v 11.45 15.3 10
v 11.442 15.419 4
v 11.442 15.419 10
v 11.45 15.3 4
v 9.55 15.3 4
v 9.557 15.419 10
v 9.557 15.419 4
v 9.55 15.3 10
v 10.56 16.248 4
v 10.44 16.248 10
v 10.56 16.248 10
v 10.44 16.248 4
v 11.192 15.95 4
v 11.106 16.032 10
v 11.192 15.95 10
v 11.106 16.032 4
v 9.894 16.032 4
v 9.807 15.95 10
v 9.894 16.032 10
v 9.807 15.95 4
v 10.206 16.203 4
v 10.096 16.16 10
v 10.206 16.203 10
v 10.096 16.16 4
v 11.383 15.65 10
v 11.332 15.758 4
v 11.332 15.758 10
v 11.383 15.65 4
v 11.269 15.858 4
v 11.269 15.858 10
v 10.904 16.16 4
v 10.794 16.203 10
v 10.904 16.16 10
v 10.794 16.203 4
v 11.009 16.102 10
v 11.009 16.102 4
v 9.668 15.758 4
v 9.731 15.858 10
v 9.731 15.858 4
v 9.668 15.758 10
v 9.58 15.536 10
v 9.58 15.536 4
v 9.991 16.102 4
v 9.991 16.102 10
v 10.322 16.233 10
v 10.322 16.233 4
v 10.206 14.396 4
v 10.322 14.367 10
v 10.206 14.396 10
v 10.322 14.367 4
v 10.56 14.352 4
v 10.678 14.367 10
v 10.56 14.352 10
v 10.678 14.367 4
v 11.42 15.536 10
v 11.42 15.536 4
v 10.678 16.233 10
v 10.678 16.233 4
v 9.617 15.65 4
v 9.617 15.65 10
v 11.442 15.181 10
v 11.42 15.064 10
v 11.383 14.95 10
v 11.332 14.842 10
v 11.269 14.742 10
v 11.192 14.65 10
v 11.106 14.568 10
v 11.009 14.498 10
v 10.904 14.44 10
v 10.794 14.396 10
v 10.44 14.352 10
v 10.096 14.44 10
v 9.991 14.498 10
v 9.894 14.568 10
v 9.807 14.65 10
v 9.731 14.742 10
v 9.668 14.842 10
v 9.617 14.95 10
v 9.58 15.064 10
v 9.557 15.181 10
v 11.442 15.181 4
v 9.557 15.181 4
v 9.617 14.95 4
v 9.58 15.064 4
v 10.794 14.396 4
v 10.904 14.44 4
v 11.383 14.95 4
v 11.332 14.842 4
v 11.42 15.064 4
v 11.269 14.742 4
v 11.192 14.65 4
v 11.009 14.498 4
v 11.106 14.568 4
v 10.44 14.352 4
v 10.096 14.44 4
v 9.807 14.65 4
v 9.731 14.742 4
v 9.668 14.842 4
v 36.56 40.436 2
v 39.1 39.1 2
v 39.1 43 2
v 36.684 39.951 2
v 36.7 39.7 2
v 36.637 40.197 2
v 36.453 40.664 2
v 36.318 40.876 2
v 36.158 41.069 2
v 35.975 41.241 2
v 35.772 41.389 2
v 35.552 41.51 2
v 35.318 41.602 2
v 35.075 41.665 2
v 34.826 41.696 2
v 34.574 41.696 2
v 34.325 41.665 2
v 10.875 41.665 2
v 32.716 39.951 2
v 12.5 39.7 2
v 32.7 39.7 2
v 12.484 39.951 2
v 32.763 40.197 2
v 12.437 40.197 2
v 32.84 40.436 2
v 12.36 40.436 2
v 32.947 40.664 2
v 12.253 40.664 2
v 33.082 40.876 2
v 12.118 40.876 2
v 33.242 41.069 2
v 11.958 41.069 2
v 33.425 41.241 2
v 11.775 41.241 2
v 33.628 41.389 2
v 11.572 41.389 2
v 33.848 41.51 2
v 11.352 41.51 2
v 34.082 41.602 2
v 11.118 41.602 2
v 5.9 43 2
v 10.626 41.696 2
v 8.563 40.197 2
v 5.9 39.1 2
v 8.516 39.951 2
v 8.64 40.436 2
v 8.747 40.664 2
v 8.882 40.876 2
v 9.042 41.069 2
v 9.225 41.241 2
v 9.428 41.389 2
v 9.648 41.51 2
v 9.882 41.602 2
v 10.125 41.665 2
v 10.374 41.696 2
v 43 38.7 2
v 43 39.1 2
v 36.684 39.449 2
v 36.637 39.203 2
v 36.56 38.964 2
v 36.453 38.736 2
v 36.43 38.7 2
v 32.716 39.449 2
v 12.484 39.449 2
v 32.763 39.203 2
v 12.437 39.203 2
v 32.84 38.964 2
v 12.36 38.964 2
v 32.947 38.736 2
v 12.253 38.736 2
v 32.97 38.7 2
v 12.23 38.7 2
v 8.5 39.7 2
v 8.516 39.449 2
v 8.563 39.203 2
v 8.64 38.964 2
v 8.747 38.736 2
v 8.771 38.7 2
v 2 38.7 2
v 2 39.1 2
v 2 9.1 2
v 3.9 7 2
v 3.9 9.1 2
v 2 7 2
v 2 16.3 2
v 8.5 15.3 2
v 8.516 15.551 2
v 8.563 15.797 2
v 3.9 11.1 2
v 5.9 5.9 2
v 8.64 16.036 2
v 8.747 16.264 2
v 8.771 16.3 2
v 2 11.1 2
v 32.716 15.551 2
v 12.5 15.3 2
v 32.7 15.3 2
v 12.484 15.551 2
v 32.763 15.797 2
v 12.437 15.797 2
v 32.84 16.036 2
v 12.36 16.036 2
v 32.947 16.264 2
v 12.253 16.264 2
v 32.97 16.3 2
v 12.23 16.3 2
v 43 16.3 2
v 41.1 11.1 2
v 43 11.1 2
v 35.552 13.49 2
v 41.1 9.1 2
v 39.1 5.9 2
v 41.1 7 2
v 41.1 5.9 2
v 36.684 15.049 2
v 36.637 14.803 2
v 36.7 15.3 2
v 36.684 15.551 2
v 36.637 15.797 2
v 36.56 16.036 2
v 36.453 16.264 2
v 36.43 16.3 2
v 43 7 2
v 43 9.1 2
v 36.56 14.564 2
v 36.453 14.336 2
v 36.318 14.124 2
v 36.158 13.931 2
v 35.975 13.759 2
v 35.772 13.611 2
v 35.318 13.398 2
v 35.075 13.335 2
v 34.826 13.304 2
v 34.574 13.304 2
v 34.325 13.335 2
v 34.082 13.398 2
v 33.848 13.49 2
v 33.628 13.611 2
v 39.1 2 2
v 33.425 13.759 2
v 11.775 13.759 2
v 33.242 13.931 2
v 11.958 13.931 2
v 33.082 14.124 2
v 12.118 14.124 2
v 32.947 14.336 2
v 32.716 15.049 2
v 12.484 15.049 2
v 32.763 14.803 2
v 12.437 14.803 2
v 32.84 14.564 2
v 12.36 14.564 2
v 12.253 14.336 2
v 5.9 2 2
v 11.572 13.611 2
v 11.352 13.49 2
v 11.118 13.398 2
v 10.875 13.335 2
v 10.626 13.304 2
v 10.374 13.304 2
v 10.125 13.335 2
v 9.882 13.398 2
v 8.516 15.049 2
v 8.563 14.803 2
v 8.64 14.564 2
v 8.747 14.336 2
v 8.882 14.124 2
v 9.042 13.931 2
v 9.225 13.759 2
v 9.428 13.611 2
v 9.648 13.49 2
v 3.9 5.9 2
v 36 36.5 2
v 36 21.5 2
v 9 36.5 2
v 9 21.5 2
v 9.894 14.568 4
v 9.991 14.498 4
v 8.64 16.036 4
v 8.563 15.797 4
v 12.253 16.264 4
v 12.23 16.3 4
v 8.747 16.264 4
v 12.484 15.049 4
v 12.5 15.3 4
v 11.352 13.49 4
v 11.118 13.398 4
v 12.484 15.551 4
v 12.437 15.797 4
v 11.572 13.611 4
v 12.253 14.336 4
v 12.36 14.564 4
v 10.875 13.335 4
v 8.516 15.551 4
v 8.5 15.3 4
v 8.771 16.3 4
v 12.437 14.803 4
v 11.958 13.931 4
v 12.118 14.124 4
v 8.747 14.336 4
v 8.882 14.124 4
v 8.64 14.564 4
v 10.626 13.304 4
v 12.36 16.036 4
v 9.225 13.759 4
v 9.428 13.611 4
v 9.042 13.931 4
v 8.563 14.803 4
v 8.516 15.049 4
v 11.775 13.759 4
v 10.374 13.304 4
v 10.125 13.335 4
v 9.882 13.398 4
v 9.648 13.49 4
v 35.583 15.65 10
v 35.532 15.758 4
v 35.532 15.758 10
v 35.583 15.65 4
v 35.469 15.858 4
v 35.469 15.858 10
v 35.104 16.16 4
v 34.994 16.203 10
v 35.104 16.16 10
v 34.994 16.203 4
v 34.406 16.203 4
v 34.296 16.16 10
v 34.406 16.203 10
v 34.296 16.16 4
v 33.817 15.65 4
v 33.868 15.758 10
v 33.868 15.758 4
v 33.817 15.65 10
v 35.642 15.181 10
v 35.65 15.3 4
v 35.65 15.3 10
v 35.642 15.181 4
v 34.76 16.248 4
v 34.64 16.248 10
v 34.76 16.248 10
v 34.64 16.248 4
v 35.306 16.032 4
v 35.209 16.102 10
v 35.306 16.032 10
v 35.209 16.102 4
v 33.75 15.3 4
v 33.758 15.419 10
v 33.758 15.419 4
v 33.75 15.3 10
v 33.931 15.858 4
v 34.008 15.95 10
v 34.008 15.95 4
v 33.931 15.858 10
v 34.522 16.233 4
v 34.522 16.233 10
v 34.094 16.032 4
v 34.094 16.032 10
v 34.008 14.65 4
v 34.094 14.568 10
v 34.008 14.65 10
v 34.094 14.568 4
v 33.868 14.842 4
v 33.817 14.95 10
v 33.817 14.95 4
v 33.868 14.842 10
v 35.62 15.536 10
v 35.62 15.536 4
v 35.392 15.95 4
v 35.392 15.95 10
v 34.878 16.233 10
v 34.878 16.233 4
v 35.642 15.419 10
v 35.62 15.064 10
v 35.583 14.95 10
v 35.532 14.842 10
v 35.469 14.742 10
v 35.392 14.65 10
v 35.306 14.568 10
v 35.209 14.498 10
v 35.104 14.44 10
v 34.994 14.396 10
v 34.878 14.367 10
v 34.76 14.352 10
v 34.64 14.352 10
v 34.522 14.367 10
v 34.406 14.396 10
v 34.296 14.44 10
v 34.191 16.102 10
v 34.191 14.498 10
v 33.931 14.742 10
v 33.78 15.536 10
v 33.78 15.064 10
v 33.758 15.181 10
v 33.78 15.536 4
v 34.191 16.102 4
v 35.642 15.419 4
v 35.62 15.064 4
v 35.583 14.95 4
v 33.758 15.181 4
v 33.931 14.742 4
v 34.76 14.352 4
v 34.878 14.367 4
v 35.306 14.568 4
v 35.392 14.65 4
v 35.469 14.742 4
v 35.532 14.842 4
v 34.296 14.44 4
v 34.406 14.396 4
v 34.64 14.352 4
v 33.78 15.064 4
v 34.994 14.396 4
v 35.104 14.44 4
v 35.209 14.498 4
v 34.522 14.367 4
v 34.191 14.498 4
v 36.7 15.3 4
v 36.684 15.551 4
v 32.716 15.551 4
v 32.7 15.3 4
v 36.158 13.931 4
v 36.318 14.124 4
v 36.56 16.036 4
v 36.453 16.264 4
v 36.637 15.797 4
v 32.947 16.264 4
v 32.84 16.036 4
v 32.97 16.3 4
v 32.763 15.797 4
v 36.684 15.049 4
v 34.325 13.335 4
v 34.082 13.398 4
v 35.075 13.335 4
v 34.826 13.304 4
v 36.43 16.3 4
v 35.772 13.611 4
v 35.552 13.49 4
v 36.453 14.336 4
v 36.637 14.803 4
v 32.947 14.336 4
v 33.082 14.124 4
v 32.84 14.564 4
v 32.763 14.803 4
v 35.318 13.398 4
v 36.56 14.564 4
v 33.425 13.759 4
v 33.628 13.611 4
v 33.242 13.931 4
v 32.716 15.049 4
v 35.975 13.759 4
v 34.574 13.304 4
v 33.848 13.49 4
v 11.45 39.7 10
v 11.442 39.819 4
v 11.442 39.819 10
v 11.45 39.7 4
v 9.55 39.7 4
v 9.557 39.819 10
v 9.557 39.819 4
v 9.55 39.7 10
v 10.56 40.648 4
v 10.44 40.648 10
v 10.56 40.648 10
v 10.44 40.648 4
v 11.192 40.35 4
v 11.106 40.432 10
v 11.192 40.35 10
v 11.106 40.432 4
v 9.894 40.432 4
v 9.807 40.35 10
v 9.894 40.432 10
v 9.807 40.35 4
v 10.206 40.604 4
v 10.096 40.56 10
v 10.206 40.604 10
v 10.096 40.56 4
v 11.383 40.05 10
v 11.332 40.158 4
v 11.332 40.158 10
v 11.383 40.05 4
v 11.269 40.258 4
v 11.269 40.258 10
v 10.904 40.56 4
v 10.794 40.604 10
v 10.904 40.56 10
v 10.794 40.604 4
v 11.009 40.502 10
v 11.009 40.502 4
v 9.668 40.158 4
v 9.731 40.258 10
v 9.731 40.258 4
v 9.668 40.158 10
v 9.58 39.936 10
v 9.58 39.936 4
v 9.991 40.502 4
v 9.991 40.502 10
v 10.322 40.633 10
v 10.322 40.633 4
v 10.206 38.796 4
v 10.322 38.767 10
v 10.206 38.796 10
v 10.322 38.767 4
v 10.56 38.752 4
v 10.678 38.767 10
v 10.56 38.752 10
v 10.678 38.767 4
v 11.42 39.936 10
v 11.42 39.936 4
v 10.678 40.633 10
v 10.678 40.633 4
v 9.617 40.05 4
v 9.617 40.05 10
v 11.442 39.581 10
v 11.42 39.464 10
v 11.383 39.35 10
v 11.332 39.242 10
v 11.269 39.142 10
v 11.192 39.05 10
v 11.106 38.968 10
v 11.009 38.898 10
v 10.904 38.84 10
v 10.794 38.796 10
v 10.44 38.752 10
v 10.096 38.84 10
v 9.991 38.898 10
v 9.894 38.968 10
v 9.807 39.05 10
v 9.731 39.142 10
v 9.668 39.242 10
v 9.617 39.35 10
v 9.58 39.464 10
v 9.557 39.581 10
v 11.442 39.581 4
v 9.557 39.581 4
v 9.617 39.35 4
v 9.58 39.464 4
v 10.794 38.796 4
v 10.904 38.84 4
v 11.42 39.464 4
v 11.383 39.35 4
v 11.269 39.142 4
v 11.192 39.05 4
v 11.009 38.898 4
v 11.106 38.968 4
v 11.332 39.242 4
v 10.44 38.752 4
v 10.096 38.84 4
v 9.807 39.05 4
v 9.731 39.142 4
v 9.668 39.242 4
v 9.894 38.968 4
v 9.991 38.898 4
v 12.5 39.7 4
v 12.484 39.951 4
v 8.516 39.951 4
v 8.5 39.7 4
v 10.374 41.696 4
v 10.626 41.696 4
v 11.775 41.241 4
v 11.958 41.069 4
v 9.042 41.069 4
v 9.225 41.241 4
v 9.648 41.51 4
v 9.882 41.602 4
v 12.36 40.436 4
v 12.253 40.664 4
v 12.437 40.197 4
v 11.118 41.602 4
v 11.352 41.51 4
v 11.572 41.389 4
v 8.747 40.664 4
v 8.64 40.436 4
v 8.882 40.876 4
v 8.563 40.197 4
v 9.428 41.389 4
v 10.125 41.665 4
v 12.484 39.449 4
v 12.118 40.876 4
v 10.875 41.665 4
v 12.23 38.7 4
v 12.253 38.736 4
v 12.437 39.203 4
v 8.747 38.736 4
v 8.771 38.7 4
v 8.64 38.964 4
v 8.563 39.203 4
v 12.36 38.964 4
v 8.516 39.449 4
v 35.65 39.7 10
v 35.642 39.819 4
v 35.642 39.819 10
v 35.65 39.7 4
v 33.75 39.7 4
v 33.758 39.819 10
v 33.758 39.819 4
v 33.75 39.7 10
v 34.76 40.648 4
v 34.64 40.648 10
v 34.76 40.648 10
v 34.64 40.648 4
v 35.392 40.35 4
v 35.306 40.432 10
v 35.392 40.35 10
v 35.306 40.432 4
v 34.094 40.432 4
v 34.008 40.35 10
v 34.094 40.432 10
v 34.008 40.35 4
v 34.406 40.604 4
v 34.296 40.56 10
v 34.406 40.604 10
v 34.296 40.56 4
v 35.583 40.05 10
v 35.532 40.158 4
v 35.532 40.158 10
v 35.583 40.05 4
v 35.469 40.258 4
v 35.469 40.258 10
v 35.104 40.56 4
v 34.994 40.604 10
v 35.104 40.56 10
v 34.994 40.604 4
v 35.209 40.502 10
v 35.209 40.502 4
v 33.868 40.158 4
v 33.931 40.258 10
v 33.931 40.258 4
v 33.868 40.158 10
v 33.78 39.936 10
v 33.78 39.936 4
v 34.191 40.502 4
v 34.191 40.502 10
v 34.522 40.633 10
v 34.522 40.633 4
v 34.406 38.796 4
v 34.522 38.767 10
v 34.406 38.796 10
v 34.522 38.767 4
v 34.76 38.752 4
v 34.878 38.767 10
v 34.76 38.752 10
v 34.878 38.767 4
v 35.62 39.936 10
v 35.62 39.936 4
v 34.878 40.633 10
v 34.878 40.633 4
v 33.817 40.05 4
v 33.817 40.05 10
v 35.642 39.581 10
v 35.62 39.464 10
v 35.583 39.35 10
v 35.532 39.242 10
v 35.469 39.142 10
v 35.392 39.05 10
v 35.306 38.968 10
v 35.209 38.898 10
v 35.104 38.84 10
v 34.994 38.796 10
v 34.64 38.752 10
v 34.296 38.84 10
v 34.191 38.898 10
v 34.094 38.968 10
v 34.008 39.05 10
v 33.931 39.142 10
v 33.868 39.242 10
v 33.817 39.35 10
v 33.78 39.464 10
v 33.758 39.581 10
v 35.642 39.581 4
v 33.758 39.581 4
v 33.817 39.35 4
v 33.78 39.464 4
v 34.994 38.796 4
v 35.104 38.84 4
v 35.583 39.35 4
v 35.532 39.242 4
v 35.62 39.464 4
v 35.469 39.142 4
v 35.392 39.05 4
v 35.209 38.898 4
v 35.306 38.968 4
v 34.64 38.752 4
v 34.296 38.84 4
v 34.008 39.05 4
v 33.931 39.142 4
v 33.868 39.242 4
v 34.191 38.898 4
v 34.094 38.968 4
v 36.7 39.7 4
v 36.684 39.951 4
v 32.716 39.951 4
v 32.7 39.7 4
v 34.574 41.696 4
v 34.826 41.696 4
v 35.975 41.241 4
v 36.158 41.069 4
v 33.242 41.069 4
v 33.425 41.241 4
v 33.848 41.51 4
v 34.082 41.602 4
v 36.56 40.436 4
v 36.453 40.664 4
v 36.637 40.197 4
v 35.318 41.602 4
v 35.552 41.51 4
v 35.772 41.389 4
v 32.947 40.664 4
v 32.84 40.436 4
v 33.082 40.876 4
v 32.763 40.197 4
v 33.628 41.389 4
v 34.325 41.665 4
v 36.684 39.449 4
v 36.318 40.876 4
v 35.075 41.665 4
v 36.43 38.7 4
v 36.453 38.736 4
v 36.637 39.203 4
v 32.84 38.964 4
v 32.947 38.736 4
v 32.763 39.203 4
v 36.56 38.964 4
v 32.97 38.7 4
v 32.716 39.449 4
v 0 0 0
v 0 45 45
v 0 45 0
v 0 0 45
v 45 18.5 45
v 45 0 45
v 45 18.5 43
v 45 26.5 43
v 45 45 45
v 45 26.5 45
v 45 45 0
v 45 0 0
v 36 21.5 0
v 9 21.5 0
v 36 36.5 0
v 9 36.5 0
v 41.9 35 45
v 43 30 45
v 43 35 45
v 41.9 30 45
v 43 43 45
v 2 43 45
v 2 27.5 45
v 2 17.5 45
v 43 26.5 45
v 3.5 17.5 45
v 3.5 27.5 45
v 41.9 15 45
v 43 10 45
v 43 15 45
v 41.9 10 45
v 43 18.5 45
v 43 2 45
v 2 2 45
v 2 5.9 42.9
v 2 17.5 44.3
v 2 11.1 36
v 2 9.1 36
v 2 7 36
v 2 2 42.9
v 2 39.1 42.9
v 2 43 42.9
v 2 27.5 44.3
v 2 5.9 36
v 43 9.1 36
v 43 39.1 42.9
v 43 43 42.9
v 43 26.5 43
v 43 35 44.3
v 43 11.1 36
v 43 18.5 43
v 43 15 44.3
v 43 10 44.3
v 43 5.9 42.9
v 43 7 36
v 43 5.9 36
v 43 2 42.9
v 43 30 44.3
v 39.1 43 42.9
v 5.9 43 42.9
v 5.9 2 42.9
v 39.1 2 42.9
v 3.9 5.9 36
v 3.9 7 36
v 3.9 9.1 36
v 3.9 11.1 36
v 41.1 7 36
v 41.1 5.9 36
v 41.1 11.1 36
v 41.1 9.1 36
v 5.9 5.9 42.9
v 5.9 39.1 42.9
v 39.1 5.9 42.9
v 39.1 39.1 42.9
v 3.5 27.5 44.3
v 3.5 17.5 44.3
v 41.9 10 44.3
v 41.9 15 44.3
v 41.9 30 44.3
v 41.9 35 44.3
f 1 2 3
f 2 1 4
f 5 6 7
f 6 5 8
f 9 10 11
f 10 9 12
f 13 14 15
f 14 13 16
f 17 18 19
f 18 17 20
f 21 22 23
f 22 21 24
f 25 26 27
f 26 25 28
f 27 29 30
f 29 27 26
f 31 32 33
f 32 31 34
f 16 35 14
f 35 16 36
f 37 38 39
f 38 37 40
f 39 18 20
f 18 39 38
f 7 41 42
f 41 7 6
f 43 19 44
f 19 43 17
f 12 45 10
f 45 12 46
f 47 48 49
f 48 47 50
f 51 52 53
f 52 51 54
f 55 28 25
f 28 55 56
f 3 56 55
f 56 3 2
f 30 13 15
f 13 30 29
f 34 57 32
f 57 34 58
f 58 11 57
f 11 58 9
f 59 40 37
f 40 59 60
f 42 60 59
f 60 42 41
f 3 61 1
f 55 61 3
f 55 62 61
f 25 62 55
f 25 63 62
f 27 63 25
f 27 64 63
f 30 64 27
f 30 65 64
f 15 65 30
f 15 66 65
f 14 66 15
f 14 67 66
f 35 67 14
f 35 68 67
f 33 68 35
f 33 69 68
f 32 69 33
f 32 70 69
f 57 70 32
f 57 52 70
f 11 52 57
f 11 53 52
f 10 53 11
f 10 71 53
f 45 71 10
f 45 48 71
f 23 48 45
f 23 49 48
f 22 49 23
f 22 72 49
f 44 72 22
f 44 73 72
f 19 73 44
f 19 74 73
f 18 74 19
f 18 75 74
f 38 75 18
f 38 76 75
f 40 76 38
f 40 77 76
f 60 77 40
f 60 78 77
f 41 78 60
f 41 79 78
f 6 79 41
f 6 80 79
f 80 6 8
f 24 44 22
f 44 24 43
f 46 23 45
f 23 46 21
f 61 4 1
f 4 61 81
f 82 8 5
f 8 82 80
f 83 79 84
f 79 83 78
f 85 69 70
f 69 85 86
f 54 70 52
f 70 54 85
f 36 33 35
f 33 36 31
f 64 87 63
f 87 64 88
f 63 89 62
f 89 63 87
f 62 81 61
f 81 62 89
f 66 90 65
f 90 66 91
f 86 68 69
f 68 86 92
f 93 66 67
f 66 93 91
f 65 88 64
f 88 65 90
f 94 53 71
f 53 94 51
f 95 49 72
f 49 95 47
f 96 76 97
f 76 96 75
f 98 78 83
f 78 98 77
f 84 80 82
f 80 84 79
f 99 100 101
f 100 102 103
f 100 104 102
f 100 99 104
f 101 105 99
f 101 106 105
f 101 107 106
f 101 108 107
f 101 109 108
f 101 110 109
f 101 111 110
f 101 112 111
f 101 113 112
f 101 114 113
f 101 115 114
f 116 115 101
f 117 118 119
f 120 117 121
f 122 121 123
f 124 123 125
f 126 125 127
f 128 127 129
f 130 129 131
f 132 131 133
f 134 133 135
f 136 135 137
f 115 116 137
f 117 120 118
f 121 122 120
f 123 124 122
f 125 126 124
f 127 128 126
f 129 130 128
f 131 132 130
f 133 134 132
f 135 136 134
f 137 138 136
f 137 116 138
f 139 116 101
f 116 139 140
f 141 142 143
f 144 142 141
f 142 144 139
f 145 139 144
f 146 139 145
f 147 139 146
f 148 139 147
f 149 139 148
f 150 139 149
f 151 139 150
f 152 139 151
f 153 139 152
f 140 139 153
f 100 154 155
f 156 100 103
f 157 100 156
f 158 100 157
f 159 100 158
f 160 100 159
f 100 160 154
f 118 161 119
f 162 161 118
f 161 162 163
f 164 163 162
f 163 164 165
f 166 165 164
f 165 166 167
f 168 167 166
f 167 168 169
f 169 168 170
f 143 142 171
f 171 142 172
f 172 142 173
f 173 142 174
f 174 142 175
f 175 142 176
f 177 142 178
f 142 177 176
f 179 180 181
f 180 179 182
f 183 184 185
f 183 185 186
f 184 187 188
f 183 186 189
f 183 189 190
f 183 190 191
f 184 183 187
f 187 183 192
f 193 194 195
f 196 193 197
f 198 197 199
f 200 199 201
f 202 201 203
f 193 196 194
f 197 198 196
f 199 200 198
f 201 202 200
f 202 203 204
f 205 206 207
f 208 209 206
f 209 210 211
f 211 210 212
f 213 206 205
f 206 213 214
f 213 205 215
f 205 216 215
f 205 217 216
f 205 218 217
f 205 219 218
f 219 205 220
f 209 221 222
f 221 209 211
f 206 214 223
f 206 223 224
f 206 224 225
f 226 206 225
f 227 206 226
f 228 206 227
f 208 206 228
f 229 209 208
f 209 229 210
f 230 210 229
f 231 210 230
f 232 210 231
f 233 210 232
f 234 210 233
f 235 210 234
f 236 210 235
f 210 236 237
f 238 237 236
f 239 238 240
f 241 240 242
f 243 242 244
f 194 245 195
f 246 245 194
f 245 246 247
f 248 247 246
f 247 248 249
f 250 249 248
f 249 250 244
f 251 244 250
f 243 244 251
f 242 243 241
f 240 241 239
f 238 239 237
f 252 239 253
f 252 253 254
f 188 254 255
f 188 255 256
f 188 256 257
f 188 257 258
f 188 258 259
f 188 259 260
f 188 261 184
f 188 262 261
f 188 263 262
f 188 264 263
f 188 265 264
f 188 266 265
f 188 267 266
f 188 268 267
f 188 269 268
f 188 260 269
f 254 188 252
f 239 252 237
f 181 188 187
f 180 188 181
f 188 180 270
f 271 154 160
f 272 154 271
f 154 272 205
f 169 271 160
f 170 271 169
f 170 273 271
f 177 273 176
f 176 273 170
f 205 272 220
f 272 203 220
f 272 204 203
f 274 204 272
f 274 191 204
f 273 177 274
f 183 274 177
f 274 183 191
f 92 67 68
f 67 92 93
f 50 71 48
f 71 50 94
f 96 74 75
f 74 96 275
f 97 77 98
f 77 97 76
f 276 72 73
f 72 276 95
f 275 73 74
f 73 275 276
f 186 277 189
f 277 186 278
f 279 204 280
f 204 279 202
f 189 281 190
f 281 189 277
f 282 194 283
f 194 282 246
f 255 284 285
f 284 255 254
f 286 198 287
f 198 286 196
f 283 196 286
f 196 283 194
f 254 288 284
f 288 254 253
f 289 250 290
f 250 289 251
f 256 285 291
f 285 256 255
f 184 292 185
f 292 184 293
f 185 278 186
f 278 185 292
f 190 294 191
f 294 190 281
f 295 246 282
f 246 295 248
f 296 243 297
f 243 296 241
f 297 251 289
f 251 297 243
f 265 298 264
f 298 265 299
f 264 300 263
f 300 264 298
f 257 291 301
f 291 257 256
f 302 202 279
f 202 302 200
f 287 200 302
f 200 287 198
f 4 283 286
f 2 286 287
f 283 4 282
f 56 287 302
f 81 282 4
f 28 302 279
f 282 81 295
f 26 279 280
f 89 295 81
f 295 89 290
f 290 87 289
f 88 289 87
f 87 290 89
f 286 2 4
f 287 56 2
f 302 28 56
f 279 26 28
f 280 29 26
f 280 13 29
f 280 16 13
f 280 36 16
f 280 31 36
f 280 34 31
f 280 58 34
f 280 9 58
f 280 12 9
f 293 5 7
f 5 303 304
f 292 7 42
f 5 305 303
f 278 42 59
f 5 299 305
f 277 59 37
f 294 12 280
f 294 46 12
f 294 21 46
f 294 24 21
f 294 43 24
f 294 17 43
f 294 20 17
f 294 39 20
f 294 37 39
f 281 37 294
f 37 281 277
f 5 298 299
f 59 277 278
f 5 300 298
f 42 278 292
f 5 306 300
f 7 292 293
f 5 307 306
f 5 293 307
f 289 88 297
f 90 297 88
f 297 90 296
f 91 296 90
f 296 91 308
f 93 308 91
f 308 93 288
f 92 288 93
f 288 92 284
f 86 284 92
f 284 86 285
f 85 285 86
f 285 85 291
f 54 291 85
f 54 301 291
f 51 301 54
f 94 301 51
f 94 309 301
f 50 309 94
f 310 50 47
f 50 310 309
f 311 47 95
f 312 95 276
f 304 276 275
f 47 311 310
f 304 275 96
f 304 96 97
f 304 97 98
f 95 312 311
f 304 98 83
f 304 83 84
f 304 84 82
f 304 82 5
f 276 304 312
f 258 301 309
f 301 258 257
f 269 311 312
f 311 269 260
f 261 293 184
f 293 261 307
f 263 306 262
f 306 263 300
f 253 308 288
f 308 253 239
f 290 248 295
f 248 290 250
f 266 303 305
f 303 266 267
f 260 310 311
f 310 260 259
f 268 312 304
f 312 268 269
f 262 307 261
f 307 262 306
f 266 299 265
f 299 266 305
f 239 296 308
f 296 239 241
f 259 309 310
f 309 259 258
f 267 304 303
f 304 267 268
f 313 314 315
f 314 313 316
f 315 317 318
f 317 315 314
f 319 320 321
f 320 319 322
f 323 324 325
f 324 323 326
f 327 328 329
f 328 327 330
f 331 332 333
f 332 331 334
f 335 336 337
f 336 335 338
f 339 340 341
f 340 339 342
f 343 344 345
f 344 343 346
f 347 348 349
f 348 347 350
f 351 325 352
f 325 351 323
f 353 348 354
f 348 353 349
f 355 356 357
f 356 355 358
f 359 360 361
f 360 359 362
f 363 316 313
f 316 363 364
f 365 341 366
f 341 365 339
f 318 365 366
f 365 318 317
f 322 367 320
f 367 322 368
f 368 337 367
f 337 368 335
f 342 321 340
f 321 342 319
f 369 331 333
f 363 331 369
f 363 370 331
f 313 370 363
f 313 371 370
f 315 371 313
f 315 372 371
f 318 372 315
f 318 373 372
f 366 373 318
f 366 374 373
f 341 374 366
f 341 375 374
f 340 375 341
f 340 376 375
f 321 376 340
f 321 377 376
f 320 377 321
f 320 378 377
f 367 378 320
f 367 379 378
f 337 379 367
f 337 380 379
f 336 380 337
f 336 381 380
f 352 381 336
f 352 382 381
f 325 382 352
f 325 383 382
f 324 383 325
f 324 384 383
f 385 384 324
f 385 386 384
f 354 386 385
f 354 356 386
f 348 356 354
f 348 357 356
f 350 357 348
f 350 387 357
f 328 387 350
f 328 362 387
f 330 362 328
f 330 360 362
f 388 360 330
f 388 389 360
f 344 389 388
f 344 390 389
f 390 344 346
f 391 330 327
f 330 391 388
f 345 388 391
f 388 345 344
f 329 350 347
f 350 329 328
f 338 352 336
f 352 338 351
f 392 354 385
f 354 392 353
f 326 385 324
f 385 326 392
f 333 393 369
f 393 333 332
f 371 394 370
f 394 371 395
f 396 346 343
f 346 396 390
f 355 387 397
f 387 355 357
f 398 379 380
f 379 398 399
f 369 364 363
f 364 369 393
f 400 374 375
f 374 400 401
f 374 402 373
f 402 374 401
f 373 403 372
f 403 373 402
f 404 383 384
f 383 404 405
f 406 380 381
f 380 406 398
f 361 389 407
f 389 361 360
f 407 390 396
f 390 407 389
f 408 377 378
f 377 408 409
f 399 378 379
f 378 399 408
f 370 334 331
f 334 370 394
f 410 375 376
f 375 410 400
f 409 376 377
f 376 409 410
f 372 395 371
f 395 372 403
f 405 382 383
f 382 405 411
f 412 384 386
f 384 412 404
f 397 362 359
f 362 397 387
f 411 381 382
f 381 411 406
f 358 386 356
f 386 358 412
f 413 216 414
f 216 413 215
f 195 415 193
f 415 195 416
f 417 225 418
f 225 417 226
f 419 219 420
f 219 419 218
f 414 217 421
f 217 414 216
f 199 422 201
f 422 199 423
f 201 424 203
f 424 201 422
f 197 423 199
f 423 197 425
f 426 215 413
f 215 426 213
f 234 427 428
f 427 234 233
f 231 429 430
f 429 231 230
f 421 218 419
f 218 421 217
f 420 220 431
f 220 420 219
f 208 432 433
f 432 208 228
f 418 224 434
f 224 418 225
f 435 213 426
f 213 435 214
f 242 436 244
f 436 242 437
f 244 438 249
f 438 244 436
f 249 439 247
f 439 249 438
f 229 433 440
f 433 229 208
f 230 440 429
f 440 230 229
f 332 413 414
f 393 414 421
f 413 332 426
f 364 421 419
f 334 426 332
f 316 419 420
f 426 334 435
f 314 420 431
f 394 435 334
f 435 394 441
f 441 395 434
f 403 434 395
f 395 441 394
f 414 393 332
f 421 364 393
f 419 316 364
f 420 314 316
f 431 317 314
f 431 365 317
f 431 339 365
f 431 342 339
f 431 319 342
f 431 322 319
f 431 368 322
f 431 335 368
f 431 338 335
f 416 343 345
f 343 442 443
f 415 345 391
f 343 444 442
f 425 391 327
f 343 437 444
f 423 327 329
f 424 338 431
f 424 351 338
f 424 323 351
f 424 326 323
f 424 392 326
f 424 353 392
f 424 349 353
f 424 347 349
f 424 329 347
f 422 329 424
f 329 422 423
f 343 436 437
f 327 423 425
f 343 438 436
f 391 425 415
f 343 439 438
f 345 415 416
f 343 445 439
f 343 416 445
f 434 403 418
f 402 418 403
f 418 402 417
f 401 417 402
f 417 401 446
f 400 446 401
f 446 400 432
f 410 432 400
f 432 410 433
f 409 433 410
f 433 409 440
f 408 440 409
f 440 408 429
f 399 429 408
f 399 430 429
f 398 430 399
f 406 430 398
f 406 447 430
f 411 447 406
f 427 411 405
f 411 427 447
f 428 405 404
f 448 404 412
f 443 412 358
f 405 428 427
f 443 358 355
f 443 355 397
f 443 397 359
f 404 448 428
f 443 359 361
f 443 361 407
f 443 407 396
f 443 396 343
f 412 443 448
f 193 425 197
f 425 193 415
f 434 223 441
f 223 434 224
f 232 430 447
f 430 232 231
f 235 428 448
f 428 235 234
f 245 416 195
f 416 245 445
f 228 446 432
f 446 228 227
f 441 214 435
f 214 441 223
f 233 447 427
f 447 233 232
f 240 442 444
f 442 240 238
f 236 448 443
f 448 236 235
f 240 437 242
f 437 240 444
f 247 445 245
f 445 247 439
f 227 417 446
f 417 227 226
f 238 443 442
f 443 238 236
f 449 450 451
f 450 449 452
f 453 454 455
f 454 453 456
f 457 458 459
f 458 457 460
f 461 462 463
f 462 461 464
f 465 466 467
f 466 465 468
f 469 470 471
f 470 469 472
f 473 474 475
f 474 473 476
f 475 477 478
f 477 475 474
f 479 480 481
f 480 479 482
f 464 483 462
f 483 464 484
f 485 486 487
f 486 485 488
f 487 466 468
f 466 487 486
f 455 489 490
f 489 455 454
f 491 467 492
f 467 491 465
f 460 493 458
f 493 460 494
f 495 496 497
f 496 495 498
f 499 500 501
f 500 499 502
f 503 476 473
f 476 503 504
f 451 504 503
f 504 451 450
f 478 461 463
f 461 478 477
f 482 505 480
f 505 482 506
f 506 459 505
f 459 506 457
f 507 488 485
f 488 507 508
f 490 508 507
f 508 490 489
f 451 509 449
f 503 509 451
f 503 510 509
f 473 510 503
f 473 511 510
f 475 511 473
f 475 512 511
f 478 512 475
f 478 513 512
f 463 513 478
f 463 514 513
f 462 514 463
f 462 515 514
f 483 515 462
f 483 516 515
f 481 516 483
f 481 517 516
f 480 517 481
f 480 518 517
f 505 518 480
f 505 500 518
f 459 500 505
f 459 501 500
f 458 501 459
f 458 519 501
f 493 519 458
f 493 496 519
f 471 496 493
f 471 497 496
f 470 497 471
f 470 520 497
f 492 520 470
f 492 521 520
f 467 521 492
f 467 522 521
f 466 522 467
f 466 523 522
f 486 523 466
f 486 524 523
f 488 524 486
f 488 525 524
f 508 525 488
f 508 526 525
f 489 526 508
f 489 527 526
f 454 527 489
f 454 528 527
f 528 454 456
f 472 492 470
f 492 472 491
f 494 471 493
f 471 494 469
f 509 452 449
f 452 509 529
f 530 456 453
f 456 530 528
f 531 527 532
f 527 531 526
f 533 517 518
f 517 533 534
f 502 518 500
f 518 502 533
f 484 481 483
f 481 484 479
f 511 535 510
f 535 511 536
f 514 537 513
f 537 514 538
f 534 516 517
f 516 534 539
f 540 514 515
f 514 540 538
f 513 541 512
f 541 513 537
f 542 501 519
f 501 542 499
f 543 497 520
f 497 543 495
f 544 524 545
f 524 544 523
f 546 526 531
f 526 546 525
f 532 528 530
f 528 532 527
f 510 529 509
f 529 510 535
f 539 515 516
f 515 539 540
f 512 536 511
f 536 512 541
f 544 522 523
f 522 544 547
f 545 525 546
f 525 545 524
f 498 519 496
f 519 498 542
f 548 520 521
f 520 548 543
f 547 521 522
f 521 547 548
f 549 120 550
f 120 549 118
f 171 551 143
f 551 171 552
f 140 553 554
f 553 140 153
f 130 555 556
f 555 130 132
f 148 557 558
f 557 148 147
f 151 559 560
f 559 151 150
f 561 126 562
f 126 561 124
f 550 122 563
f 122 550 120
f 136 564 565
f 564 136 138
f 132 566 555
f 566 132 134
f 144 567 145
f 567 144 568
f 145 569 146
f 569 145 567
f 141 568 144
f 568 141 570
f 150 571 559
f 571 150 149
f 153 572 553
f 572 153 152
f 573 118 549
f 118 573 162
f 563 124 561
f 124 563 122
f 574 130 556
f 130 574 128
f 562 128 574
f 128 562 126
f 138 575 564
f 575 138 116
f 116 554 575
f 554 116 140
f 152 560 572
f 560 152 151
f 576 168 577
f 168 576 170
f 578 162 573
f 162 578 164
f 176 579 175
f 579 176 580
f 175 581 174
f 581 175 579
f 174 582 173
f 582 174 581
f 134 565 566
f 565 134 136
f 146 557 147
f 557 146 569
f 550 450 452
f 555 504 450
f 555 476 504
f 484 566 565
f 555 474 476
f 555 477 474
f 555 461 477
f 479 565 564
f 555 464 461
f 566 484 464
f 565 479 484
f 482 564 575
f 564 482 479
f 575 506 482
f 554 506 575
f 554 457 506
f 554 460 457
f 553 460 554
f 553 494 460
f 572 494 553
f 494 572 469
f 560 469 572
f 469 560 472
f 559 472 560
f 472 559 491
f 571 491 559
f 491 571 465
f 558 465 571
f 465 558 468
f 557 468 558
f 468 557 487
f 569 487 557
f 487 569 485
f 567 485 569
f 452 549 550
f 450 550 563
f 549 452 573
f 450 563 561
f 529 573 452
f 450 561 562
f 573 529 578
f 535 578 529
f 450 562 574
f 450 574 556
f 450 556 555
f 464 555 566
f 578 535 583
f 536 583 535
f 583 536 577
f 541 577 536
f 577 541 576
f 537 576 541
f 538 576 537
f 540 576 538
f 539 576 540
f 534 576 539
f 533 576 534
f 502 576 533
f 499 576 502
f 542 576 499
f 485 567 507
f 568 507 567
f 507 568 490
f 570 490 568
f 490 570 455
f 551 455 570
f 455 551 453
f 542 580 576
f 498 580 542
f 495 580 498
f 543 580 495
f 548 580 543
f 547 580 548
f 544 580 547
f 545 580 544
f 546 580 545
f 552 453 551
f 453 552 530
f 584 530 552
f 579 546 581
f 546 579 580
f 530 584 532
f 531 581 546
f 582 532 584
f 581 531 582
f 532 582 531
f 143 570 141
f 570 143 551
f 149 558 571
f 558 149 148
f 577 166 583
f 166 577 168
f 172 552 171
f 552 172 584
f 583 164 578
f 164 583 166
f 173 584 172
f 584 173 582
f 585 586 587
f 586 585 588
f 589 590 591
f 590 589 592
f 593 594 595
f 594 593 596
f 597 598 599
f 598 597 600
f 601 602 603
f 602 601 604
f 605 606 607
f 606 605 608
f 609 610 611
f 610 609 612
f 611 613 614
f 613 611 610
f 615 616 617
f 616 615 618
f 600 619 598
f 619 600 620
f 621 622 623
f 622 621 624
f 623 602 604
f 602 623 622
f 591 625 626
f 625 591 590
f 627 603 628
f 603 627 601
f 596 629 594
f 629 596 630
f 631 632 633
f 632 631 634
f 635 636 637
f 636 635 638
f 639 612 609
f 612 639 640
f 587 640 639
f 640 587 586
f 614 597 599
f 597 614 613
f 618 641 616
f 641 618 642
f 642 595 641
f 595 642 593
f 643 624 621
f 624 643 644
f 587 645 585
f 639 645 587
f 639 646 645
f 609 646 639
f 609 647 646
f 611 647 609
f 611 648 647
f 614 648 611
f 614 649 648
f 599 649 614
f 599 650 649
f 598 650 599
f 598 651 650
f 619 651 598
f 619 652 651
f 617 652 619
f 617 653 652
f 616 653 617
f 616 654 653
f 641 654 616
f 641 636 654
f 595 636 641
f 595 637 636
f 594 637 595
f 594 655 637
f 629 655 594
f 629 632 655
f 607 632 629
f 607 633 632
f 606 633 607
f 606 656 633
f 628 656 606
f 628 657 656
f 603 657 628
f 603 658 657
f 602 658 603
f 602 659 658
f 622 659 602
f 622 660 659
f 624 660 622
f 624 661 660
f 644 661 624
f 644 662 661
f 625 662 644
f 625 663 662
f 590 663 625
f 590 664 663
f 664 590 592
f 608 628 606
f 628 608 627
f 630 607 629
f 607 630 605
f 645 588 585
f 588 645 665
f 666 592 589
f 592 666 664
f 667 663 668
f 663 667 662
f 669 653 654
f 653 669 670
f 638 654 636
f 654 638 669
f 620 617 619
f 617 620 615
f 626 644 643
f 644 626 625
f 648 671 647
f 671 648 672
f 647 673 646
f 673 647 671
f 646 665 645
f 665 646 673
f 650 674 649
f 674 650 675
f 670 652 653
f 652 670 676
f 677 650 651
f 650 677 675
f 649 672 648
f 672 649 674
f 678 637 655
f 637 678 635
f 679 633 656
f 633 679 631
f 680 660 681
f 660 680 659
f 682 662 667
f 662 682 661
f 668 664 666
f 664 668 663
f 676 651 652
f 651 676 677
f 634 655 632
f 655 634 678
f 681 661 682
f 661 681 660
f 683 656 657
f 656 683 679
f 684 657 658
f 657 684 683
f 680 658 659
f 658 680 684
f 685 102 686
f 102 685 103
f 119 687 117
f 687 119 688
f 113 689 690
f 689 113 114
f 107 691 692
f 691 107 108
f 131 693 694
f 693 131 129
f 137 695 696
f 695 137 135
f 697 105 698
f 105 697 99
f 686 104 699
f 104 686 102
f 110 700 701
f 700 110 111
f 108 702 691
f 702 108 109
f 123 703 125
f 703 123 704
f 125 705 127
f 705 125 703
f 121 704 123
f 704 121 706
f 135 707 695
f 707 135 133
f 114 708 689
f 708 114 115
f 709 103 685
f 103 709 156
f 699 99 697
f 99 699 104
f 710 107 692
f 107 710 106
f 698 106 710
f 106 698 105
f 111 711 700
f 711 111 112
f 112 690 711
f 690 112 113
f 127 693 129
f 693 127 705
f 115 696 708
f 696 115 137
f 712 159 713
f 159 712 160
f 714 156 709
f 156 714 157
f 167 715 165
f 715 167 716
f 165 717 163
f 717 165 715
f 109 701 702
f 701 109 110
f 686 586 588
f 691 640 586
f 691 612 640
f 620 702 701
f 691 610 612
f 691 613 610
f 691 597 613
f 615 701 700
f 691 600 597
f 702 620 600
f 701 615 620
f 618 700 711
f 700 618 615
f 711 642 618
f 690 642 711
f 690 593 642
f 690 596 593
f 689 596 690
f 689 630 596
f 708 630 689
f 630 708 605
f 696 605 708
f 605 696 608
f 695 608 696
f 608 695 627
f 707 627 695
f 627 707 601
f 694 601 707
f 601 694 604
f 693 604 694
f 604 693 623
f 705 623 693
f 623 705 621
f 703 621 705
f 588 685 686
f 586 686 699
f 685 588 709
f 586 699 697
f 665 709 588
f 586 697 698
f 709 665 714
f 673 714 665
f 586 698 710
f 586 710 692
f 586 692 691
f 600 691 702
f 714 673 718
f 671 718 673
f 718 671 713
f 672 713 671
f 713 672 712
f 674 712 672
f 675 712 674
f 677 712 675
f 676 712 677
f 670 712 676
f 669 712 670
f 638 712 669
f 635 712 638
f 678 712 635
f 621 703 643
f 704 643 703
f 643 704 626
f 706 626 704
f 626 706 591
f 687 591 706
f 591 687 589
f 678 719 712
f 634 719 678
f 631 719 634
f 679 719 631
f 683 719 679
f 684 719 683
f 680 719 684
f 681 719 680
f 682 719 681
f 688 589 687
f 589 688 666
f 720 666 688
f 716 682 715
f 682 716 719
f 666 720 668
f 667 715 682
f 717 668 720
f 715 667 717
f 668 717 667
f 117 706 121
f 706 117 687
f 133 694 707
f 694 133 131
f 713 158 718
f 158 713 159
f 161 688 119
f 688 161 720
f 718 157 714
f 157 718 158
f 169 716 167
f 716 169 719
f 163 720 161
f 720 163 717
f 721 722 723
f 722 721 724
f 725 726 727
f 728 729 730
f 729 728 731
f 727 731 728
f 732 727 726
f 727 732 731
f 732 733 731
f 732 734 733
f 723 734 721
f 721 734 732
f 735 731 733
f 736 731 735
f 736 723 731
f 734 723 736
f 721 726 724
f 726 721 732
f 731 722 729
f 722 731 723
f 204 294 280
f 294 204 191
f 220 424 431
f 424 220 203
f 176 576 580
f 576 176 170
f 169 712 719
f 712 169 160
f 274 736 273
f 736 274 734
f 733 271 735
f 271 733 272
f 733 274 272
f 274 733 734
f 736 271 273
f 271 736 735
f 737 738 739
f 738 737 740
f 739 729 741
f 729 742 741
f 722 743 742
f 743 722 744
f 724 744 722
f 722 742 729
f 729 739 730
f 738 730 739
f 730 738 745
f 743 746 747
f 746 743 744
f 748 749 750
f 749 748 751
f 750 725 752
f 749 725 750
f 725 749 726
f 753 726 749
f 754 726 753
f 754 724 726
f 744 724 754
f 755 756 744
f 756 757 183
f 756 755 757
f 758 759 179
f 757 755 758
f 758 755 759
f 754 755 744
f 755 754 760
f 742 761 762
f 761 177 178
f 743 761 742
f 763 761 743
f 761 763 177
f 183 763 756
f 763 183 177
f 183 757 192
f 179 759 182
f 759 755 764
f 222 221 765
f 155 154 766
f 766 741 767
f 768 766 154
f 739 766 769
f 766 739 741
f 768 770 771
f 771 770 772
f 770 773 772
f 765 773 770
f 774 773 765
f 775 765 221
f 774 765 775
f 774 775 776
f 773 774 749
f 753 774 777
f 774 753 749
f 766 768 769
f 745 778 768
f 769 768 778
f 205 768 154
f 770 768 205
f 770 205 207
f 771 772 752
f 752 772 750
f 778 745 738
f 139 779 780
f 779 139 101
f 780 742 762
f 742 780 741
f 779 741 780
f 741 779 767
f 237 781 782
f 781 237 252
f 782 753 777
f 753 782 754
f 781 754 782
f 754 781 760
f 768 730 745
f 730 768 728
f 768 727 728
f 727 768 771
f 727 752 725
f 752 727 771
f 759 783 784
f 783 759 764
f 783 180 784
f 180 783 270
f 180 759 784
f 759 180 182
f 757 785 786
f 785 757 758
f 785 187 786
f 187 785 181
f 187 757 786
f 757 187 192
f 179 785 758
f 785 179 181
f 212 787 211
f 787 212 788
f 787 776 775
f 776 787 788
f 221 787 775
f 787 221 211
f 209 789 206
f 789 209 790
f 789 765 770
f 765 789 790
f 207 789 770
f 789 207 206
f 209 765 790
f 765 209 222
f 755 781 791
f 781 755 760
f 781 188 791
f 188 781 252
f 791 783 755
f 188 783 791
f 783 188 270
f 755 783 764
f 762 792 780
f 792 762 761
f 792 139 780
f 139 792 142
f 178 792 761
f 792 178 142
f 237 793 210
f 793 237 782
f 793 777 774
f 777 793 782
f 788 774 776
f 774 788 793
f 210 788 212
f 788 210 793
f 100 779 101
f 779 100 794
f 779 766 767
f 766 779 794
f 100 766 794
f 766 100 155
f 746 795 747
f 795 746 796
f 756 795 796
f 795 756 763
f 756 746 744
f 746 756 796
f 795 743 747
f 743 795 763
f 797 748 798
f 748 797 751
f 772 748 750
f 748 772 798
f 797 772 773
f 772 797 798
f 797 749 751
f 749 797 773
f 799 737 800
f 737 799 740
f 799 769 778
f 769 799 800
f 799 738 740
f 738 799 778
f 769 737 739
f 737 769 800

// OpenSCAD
// file: oledPanel.scad
// Oled screen panel

// Dimensions between holes axis
xInterHole = 24.2;
yInterHole = 24.4;

// Dimensions of the window in the panel
xWindow = 27;
yWindow = 15;
yWindowoffset = 1.5;

// Some offset
xHoleCenter = 0.1;
yHoleCenter = 0;

//windowPanel(45, 45, 2, 6);

module windowPanel(x, y, z, yOffset) {
  xPanel = x;
  yPanel = y;
  zPanel = z;
  
  xMargin = xPanel - xInterHole;
  yMargin = yPanel - yInterHole;
  
  difference() {
    oledPanel(xPanel, yPanel, zPanel, xMargin, yMargin, yOffset);
    translate([(xPanel - xWindow)/2, (yPanel - yWindow)/2 + yWindowoffset + yOffset, -zPanel/2]) {
      // opening
      cube([xWindow, yWindow, 2 * zPanel]);  
    }
  }
}


module oledPanel(xPanel, yPanel, zPanel, xMargin, yMargin, yOffset) {
echo (zPanel);
  difference() {
    union() {
      cube([xPanel, yPanel, zPanel]);  
      pillar(xHoleCenter, yHoleCenter + yOffset, xMargin, yMargin, zPanel);
      pillar(xHoleCenter + xInterHole, yHoleCenter + yOffset, xMargin, yMargin, zPanel);
      pillar(xHoleCenter, yHoleCenter + yInterHole + yOffset, xMargin, yMargin, zPanel);
      pillar(xHoleCenter + xInterHole, yHoleCenter + yInterHole + yOffset, xMargin, yMargin, zPanel);
    }
    // cut the base of pillars
    translate([(xMargin - yInterHole)/2,  yMargin/2+1 + yOffset, zPanel]) {
      cube([xInterHole *2, yInterHole - 2, 3]);
    }
  }
}

// To fix the Oled
module pillar(x, y, xMargin, yMargin, zPanel) {
echo (x, y, xMargin, yMargin, zPanel);

  translate([x + xMargin/2, y + yMargin/2, zPanel]) {
    cylinder(d=1.9, h=8, $fn=50);
    cylinder(d=4, h=2, $fn=50);
    
  }
    
}
// main file
include <oledPanel.scad>;


//windowPanel();

innerX = 41;
innerY = 41;
innerZ = 41;
wall=2;

outerX = innerX + 2 * wall;
outerY = innerY + 2 * wall;
outerZ = innerZ + 2 * wall;

boardZ = 2.1;

leftHookY = 10;
leftHookZ = 0.7;
leftHookX = 1.5;

rightHookY = 5;
rightHookZ = 0.7;
rightHookX = 1.1;

indentX = wall;
indentY = 8;
indentZ = wall;

iotinator();

module iotinator() {

  windowPanel(outerX, outerY,  wall, 5);  
  difference() {
    cube([outerX, outerY, outerZ]);
    translate([wall, wall, -wall])
      cube([innerX, innerY, innerZ + 4 * wall]);
    translate([innerX + wall -1 , (outerY - indentY)/2, outerZ-indentZ]) {
      cube([indentX + 2, indentY, indentZ]);
    }      
  }
  
  // rails
  translate([wall - 0.1, 5, 0])
    cube([2, 2, innerZ-5]);
  translate([wall - 0.1, 5 + 2 + boardZ, 0])
    cube([2, 2, innerZ-5]);
  translate([innerX + 0.1, 5, 0])
    cube([2, 2, innerZ-5]);
  translate([innerX + 0.1, 5 + 2 + boardZ, 0])
    cube([2, 2, innerZ-5]);
  
  // corners bottom left
  translate([wall - 0.1, wall - 0.1, wall - 0.1])
    cube([4, 4, innerZ]);
  // corners top left
  translate([wall - 0.1, innerY-wall + 0.1, wall - 0.1])
    cube([4, 4, innerZ]);
  // corners bottom right
  translate([innerX - wall + 0.1, wall - 0.1, wall - 0.1])
    cube([4, 4, innerZ]);
  // corners top right
  translate([innerX - wall + 0.1, innerY - wall + 0.1, wall - 0.1])
    cube([4, 4, innerZ]);
  
  // left cover Hook
  translate([wall, (outerY - leftHookY)/2, outerZ-leftHookZ]) {
    cube([leftHookX, leftHookY, leftHookZ]);
  }
  
  // bottom right cover Hook
  translate([outerX - rightHookX - wall, (outerY - rightHookY)/4, outerZ-rightHookZ ]) {
    cube([rightHookX, rightHookY, rightHookZ]);
  }
  // top right cover Hook
  translate([outerX - rightHookX - wall, (outerY - rightHookY) - (outerY - rightHookY)/4, outerZ-rightHookZ ]) {
    cube([rightHookX, rightHookY, rightHookZ]);
  }  
  
       
}
